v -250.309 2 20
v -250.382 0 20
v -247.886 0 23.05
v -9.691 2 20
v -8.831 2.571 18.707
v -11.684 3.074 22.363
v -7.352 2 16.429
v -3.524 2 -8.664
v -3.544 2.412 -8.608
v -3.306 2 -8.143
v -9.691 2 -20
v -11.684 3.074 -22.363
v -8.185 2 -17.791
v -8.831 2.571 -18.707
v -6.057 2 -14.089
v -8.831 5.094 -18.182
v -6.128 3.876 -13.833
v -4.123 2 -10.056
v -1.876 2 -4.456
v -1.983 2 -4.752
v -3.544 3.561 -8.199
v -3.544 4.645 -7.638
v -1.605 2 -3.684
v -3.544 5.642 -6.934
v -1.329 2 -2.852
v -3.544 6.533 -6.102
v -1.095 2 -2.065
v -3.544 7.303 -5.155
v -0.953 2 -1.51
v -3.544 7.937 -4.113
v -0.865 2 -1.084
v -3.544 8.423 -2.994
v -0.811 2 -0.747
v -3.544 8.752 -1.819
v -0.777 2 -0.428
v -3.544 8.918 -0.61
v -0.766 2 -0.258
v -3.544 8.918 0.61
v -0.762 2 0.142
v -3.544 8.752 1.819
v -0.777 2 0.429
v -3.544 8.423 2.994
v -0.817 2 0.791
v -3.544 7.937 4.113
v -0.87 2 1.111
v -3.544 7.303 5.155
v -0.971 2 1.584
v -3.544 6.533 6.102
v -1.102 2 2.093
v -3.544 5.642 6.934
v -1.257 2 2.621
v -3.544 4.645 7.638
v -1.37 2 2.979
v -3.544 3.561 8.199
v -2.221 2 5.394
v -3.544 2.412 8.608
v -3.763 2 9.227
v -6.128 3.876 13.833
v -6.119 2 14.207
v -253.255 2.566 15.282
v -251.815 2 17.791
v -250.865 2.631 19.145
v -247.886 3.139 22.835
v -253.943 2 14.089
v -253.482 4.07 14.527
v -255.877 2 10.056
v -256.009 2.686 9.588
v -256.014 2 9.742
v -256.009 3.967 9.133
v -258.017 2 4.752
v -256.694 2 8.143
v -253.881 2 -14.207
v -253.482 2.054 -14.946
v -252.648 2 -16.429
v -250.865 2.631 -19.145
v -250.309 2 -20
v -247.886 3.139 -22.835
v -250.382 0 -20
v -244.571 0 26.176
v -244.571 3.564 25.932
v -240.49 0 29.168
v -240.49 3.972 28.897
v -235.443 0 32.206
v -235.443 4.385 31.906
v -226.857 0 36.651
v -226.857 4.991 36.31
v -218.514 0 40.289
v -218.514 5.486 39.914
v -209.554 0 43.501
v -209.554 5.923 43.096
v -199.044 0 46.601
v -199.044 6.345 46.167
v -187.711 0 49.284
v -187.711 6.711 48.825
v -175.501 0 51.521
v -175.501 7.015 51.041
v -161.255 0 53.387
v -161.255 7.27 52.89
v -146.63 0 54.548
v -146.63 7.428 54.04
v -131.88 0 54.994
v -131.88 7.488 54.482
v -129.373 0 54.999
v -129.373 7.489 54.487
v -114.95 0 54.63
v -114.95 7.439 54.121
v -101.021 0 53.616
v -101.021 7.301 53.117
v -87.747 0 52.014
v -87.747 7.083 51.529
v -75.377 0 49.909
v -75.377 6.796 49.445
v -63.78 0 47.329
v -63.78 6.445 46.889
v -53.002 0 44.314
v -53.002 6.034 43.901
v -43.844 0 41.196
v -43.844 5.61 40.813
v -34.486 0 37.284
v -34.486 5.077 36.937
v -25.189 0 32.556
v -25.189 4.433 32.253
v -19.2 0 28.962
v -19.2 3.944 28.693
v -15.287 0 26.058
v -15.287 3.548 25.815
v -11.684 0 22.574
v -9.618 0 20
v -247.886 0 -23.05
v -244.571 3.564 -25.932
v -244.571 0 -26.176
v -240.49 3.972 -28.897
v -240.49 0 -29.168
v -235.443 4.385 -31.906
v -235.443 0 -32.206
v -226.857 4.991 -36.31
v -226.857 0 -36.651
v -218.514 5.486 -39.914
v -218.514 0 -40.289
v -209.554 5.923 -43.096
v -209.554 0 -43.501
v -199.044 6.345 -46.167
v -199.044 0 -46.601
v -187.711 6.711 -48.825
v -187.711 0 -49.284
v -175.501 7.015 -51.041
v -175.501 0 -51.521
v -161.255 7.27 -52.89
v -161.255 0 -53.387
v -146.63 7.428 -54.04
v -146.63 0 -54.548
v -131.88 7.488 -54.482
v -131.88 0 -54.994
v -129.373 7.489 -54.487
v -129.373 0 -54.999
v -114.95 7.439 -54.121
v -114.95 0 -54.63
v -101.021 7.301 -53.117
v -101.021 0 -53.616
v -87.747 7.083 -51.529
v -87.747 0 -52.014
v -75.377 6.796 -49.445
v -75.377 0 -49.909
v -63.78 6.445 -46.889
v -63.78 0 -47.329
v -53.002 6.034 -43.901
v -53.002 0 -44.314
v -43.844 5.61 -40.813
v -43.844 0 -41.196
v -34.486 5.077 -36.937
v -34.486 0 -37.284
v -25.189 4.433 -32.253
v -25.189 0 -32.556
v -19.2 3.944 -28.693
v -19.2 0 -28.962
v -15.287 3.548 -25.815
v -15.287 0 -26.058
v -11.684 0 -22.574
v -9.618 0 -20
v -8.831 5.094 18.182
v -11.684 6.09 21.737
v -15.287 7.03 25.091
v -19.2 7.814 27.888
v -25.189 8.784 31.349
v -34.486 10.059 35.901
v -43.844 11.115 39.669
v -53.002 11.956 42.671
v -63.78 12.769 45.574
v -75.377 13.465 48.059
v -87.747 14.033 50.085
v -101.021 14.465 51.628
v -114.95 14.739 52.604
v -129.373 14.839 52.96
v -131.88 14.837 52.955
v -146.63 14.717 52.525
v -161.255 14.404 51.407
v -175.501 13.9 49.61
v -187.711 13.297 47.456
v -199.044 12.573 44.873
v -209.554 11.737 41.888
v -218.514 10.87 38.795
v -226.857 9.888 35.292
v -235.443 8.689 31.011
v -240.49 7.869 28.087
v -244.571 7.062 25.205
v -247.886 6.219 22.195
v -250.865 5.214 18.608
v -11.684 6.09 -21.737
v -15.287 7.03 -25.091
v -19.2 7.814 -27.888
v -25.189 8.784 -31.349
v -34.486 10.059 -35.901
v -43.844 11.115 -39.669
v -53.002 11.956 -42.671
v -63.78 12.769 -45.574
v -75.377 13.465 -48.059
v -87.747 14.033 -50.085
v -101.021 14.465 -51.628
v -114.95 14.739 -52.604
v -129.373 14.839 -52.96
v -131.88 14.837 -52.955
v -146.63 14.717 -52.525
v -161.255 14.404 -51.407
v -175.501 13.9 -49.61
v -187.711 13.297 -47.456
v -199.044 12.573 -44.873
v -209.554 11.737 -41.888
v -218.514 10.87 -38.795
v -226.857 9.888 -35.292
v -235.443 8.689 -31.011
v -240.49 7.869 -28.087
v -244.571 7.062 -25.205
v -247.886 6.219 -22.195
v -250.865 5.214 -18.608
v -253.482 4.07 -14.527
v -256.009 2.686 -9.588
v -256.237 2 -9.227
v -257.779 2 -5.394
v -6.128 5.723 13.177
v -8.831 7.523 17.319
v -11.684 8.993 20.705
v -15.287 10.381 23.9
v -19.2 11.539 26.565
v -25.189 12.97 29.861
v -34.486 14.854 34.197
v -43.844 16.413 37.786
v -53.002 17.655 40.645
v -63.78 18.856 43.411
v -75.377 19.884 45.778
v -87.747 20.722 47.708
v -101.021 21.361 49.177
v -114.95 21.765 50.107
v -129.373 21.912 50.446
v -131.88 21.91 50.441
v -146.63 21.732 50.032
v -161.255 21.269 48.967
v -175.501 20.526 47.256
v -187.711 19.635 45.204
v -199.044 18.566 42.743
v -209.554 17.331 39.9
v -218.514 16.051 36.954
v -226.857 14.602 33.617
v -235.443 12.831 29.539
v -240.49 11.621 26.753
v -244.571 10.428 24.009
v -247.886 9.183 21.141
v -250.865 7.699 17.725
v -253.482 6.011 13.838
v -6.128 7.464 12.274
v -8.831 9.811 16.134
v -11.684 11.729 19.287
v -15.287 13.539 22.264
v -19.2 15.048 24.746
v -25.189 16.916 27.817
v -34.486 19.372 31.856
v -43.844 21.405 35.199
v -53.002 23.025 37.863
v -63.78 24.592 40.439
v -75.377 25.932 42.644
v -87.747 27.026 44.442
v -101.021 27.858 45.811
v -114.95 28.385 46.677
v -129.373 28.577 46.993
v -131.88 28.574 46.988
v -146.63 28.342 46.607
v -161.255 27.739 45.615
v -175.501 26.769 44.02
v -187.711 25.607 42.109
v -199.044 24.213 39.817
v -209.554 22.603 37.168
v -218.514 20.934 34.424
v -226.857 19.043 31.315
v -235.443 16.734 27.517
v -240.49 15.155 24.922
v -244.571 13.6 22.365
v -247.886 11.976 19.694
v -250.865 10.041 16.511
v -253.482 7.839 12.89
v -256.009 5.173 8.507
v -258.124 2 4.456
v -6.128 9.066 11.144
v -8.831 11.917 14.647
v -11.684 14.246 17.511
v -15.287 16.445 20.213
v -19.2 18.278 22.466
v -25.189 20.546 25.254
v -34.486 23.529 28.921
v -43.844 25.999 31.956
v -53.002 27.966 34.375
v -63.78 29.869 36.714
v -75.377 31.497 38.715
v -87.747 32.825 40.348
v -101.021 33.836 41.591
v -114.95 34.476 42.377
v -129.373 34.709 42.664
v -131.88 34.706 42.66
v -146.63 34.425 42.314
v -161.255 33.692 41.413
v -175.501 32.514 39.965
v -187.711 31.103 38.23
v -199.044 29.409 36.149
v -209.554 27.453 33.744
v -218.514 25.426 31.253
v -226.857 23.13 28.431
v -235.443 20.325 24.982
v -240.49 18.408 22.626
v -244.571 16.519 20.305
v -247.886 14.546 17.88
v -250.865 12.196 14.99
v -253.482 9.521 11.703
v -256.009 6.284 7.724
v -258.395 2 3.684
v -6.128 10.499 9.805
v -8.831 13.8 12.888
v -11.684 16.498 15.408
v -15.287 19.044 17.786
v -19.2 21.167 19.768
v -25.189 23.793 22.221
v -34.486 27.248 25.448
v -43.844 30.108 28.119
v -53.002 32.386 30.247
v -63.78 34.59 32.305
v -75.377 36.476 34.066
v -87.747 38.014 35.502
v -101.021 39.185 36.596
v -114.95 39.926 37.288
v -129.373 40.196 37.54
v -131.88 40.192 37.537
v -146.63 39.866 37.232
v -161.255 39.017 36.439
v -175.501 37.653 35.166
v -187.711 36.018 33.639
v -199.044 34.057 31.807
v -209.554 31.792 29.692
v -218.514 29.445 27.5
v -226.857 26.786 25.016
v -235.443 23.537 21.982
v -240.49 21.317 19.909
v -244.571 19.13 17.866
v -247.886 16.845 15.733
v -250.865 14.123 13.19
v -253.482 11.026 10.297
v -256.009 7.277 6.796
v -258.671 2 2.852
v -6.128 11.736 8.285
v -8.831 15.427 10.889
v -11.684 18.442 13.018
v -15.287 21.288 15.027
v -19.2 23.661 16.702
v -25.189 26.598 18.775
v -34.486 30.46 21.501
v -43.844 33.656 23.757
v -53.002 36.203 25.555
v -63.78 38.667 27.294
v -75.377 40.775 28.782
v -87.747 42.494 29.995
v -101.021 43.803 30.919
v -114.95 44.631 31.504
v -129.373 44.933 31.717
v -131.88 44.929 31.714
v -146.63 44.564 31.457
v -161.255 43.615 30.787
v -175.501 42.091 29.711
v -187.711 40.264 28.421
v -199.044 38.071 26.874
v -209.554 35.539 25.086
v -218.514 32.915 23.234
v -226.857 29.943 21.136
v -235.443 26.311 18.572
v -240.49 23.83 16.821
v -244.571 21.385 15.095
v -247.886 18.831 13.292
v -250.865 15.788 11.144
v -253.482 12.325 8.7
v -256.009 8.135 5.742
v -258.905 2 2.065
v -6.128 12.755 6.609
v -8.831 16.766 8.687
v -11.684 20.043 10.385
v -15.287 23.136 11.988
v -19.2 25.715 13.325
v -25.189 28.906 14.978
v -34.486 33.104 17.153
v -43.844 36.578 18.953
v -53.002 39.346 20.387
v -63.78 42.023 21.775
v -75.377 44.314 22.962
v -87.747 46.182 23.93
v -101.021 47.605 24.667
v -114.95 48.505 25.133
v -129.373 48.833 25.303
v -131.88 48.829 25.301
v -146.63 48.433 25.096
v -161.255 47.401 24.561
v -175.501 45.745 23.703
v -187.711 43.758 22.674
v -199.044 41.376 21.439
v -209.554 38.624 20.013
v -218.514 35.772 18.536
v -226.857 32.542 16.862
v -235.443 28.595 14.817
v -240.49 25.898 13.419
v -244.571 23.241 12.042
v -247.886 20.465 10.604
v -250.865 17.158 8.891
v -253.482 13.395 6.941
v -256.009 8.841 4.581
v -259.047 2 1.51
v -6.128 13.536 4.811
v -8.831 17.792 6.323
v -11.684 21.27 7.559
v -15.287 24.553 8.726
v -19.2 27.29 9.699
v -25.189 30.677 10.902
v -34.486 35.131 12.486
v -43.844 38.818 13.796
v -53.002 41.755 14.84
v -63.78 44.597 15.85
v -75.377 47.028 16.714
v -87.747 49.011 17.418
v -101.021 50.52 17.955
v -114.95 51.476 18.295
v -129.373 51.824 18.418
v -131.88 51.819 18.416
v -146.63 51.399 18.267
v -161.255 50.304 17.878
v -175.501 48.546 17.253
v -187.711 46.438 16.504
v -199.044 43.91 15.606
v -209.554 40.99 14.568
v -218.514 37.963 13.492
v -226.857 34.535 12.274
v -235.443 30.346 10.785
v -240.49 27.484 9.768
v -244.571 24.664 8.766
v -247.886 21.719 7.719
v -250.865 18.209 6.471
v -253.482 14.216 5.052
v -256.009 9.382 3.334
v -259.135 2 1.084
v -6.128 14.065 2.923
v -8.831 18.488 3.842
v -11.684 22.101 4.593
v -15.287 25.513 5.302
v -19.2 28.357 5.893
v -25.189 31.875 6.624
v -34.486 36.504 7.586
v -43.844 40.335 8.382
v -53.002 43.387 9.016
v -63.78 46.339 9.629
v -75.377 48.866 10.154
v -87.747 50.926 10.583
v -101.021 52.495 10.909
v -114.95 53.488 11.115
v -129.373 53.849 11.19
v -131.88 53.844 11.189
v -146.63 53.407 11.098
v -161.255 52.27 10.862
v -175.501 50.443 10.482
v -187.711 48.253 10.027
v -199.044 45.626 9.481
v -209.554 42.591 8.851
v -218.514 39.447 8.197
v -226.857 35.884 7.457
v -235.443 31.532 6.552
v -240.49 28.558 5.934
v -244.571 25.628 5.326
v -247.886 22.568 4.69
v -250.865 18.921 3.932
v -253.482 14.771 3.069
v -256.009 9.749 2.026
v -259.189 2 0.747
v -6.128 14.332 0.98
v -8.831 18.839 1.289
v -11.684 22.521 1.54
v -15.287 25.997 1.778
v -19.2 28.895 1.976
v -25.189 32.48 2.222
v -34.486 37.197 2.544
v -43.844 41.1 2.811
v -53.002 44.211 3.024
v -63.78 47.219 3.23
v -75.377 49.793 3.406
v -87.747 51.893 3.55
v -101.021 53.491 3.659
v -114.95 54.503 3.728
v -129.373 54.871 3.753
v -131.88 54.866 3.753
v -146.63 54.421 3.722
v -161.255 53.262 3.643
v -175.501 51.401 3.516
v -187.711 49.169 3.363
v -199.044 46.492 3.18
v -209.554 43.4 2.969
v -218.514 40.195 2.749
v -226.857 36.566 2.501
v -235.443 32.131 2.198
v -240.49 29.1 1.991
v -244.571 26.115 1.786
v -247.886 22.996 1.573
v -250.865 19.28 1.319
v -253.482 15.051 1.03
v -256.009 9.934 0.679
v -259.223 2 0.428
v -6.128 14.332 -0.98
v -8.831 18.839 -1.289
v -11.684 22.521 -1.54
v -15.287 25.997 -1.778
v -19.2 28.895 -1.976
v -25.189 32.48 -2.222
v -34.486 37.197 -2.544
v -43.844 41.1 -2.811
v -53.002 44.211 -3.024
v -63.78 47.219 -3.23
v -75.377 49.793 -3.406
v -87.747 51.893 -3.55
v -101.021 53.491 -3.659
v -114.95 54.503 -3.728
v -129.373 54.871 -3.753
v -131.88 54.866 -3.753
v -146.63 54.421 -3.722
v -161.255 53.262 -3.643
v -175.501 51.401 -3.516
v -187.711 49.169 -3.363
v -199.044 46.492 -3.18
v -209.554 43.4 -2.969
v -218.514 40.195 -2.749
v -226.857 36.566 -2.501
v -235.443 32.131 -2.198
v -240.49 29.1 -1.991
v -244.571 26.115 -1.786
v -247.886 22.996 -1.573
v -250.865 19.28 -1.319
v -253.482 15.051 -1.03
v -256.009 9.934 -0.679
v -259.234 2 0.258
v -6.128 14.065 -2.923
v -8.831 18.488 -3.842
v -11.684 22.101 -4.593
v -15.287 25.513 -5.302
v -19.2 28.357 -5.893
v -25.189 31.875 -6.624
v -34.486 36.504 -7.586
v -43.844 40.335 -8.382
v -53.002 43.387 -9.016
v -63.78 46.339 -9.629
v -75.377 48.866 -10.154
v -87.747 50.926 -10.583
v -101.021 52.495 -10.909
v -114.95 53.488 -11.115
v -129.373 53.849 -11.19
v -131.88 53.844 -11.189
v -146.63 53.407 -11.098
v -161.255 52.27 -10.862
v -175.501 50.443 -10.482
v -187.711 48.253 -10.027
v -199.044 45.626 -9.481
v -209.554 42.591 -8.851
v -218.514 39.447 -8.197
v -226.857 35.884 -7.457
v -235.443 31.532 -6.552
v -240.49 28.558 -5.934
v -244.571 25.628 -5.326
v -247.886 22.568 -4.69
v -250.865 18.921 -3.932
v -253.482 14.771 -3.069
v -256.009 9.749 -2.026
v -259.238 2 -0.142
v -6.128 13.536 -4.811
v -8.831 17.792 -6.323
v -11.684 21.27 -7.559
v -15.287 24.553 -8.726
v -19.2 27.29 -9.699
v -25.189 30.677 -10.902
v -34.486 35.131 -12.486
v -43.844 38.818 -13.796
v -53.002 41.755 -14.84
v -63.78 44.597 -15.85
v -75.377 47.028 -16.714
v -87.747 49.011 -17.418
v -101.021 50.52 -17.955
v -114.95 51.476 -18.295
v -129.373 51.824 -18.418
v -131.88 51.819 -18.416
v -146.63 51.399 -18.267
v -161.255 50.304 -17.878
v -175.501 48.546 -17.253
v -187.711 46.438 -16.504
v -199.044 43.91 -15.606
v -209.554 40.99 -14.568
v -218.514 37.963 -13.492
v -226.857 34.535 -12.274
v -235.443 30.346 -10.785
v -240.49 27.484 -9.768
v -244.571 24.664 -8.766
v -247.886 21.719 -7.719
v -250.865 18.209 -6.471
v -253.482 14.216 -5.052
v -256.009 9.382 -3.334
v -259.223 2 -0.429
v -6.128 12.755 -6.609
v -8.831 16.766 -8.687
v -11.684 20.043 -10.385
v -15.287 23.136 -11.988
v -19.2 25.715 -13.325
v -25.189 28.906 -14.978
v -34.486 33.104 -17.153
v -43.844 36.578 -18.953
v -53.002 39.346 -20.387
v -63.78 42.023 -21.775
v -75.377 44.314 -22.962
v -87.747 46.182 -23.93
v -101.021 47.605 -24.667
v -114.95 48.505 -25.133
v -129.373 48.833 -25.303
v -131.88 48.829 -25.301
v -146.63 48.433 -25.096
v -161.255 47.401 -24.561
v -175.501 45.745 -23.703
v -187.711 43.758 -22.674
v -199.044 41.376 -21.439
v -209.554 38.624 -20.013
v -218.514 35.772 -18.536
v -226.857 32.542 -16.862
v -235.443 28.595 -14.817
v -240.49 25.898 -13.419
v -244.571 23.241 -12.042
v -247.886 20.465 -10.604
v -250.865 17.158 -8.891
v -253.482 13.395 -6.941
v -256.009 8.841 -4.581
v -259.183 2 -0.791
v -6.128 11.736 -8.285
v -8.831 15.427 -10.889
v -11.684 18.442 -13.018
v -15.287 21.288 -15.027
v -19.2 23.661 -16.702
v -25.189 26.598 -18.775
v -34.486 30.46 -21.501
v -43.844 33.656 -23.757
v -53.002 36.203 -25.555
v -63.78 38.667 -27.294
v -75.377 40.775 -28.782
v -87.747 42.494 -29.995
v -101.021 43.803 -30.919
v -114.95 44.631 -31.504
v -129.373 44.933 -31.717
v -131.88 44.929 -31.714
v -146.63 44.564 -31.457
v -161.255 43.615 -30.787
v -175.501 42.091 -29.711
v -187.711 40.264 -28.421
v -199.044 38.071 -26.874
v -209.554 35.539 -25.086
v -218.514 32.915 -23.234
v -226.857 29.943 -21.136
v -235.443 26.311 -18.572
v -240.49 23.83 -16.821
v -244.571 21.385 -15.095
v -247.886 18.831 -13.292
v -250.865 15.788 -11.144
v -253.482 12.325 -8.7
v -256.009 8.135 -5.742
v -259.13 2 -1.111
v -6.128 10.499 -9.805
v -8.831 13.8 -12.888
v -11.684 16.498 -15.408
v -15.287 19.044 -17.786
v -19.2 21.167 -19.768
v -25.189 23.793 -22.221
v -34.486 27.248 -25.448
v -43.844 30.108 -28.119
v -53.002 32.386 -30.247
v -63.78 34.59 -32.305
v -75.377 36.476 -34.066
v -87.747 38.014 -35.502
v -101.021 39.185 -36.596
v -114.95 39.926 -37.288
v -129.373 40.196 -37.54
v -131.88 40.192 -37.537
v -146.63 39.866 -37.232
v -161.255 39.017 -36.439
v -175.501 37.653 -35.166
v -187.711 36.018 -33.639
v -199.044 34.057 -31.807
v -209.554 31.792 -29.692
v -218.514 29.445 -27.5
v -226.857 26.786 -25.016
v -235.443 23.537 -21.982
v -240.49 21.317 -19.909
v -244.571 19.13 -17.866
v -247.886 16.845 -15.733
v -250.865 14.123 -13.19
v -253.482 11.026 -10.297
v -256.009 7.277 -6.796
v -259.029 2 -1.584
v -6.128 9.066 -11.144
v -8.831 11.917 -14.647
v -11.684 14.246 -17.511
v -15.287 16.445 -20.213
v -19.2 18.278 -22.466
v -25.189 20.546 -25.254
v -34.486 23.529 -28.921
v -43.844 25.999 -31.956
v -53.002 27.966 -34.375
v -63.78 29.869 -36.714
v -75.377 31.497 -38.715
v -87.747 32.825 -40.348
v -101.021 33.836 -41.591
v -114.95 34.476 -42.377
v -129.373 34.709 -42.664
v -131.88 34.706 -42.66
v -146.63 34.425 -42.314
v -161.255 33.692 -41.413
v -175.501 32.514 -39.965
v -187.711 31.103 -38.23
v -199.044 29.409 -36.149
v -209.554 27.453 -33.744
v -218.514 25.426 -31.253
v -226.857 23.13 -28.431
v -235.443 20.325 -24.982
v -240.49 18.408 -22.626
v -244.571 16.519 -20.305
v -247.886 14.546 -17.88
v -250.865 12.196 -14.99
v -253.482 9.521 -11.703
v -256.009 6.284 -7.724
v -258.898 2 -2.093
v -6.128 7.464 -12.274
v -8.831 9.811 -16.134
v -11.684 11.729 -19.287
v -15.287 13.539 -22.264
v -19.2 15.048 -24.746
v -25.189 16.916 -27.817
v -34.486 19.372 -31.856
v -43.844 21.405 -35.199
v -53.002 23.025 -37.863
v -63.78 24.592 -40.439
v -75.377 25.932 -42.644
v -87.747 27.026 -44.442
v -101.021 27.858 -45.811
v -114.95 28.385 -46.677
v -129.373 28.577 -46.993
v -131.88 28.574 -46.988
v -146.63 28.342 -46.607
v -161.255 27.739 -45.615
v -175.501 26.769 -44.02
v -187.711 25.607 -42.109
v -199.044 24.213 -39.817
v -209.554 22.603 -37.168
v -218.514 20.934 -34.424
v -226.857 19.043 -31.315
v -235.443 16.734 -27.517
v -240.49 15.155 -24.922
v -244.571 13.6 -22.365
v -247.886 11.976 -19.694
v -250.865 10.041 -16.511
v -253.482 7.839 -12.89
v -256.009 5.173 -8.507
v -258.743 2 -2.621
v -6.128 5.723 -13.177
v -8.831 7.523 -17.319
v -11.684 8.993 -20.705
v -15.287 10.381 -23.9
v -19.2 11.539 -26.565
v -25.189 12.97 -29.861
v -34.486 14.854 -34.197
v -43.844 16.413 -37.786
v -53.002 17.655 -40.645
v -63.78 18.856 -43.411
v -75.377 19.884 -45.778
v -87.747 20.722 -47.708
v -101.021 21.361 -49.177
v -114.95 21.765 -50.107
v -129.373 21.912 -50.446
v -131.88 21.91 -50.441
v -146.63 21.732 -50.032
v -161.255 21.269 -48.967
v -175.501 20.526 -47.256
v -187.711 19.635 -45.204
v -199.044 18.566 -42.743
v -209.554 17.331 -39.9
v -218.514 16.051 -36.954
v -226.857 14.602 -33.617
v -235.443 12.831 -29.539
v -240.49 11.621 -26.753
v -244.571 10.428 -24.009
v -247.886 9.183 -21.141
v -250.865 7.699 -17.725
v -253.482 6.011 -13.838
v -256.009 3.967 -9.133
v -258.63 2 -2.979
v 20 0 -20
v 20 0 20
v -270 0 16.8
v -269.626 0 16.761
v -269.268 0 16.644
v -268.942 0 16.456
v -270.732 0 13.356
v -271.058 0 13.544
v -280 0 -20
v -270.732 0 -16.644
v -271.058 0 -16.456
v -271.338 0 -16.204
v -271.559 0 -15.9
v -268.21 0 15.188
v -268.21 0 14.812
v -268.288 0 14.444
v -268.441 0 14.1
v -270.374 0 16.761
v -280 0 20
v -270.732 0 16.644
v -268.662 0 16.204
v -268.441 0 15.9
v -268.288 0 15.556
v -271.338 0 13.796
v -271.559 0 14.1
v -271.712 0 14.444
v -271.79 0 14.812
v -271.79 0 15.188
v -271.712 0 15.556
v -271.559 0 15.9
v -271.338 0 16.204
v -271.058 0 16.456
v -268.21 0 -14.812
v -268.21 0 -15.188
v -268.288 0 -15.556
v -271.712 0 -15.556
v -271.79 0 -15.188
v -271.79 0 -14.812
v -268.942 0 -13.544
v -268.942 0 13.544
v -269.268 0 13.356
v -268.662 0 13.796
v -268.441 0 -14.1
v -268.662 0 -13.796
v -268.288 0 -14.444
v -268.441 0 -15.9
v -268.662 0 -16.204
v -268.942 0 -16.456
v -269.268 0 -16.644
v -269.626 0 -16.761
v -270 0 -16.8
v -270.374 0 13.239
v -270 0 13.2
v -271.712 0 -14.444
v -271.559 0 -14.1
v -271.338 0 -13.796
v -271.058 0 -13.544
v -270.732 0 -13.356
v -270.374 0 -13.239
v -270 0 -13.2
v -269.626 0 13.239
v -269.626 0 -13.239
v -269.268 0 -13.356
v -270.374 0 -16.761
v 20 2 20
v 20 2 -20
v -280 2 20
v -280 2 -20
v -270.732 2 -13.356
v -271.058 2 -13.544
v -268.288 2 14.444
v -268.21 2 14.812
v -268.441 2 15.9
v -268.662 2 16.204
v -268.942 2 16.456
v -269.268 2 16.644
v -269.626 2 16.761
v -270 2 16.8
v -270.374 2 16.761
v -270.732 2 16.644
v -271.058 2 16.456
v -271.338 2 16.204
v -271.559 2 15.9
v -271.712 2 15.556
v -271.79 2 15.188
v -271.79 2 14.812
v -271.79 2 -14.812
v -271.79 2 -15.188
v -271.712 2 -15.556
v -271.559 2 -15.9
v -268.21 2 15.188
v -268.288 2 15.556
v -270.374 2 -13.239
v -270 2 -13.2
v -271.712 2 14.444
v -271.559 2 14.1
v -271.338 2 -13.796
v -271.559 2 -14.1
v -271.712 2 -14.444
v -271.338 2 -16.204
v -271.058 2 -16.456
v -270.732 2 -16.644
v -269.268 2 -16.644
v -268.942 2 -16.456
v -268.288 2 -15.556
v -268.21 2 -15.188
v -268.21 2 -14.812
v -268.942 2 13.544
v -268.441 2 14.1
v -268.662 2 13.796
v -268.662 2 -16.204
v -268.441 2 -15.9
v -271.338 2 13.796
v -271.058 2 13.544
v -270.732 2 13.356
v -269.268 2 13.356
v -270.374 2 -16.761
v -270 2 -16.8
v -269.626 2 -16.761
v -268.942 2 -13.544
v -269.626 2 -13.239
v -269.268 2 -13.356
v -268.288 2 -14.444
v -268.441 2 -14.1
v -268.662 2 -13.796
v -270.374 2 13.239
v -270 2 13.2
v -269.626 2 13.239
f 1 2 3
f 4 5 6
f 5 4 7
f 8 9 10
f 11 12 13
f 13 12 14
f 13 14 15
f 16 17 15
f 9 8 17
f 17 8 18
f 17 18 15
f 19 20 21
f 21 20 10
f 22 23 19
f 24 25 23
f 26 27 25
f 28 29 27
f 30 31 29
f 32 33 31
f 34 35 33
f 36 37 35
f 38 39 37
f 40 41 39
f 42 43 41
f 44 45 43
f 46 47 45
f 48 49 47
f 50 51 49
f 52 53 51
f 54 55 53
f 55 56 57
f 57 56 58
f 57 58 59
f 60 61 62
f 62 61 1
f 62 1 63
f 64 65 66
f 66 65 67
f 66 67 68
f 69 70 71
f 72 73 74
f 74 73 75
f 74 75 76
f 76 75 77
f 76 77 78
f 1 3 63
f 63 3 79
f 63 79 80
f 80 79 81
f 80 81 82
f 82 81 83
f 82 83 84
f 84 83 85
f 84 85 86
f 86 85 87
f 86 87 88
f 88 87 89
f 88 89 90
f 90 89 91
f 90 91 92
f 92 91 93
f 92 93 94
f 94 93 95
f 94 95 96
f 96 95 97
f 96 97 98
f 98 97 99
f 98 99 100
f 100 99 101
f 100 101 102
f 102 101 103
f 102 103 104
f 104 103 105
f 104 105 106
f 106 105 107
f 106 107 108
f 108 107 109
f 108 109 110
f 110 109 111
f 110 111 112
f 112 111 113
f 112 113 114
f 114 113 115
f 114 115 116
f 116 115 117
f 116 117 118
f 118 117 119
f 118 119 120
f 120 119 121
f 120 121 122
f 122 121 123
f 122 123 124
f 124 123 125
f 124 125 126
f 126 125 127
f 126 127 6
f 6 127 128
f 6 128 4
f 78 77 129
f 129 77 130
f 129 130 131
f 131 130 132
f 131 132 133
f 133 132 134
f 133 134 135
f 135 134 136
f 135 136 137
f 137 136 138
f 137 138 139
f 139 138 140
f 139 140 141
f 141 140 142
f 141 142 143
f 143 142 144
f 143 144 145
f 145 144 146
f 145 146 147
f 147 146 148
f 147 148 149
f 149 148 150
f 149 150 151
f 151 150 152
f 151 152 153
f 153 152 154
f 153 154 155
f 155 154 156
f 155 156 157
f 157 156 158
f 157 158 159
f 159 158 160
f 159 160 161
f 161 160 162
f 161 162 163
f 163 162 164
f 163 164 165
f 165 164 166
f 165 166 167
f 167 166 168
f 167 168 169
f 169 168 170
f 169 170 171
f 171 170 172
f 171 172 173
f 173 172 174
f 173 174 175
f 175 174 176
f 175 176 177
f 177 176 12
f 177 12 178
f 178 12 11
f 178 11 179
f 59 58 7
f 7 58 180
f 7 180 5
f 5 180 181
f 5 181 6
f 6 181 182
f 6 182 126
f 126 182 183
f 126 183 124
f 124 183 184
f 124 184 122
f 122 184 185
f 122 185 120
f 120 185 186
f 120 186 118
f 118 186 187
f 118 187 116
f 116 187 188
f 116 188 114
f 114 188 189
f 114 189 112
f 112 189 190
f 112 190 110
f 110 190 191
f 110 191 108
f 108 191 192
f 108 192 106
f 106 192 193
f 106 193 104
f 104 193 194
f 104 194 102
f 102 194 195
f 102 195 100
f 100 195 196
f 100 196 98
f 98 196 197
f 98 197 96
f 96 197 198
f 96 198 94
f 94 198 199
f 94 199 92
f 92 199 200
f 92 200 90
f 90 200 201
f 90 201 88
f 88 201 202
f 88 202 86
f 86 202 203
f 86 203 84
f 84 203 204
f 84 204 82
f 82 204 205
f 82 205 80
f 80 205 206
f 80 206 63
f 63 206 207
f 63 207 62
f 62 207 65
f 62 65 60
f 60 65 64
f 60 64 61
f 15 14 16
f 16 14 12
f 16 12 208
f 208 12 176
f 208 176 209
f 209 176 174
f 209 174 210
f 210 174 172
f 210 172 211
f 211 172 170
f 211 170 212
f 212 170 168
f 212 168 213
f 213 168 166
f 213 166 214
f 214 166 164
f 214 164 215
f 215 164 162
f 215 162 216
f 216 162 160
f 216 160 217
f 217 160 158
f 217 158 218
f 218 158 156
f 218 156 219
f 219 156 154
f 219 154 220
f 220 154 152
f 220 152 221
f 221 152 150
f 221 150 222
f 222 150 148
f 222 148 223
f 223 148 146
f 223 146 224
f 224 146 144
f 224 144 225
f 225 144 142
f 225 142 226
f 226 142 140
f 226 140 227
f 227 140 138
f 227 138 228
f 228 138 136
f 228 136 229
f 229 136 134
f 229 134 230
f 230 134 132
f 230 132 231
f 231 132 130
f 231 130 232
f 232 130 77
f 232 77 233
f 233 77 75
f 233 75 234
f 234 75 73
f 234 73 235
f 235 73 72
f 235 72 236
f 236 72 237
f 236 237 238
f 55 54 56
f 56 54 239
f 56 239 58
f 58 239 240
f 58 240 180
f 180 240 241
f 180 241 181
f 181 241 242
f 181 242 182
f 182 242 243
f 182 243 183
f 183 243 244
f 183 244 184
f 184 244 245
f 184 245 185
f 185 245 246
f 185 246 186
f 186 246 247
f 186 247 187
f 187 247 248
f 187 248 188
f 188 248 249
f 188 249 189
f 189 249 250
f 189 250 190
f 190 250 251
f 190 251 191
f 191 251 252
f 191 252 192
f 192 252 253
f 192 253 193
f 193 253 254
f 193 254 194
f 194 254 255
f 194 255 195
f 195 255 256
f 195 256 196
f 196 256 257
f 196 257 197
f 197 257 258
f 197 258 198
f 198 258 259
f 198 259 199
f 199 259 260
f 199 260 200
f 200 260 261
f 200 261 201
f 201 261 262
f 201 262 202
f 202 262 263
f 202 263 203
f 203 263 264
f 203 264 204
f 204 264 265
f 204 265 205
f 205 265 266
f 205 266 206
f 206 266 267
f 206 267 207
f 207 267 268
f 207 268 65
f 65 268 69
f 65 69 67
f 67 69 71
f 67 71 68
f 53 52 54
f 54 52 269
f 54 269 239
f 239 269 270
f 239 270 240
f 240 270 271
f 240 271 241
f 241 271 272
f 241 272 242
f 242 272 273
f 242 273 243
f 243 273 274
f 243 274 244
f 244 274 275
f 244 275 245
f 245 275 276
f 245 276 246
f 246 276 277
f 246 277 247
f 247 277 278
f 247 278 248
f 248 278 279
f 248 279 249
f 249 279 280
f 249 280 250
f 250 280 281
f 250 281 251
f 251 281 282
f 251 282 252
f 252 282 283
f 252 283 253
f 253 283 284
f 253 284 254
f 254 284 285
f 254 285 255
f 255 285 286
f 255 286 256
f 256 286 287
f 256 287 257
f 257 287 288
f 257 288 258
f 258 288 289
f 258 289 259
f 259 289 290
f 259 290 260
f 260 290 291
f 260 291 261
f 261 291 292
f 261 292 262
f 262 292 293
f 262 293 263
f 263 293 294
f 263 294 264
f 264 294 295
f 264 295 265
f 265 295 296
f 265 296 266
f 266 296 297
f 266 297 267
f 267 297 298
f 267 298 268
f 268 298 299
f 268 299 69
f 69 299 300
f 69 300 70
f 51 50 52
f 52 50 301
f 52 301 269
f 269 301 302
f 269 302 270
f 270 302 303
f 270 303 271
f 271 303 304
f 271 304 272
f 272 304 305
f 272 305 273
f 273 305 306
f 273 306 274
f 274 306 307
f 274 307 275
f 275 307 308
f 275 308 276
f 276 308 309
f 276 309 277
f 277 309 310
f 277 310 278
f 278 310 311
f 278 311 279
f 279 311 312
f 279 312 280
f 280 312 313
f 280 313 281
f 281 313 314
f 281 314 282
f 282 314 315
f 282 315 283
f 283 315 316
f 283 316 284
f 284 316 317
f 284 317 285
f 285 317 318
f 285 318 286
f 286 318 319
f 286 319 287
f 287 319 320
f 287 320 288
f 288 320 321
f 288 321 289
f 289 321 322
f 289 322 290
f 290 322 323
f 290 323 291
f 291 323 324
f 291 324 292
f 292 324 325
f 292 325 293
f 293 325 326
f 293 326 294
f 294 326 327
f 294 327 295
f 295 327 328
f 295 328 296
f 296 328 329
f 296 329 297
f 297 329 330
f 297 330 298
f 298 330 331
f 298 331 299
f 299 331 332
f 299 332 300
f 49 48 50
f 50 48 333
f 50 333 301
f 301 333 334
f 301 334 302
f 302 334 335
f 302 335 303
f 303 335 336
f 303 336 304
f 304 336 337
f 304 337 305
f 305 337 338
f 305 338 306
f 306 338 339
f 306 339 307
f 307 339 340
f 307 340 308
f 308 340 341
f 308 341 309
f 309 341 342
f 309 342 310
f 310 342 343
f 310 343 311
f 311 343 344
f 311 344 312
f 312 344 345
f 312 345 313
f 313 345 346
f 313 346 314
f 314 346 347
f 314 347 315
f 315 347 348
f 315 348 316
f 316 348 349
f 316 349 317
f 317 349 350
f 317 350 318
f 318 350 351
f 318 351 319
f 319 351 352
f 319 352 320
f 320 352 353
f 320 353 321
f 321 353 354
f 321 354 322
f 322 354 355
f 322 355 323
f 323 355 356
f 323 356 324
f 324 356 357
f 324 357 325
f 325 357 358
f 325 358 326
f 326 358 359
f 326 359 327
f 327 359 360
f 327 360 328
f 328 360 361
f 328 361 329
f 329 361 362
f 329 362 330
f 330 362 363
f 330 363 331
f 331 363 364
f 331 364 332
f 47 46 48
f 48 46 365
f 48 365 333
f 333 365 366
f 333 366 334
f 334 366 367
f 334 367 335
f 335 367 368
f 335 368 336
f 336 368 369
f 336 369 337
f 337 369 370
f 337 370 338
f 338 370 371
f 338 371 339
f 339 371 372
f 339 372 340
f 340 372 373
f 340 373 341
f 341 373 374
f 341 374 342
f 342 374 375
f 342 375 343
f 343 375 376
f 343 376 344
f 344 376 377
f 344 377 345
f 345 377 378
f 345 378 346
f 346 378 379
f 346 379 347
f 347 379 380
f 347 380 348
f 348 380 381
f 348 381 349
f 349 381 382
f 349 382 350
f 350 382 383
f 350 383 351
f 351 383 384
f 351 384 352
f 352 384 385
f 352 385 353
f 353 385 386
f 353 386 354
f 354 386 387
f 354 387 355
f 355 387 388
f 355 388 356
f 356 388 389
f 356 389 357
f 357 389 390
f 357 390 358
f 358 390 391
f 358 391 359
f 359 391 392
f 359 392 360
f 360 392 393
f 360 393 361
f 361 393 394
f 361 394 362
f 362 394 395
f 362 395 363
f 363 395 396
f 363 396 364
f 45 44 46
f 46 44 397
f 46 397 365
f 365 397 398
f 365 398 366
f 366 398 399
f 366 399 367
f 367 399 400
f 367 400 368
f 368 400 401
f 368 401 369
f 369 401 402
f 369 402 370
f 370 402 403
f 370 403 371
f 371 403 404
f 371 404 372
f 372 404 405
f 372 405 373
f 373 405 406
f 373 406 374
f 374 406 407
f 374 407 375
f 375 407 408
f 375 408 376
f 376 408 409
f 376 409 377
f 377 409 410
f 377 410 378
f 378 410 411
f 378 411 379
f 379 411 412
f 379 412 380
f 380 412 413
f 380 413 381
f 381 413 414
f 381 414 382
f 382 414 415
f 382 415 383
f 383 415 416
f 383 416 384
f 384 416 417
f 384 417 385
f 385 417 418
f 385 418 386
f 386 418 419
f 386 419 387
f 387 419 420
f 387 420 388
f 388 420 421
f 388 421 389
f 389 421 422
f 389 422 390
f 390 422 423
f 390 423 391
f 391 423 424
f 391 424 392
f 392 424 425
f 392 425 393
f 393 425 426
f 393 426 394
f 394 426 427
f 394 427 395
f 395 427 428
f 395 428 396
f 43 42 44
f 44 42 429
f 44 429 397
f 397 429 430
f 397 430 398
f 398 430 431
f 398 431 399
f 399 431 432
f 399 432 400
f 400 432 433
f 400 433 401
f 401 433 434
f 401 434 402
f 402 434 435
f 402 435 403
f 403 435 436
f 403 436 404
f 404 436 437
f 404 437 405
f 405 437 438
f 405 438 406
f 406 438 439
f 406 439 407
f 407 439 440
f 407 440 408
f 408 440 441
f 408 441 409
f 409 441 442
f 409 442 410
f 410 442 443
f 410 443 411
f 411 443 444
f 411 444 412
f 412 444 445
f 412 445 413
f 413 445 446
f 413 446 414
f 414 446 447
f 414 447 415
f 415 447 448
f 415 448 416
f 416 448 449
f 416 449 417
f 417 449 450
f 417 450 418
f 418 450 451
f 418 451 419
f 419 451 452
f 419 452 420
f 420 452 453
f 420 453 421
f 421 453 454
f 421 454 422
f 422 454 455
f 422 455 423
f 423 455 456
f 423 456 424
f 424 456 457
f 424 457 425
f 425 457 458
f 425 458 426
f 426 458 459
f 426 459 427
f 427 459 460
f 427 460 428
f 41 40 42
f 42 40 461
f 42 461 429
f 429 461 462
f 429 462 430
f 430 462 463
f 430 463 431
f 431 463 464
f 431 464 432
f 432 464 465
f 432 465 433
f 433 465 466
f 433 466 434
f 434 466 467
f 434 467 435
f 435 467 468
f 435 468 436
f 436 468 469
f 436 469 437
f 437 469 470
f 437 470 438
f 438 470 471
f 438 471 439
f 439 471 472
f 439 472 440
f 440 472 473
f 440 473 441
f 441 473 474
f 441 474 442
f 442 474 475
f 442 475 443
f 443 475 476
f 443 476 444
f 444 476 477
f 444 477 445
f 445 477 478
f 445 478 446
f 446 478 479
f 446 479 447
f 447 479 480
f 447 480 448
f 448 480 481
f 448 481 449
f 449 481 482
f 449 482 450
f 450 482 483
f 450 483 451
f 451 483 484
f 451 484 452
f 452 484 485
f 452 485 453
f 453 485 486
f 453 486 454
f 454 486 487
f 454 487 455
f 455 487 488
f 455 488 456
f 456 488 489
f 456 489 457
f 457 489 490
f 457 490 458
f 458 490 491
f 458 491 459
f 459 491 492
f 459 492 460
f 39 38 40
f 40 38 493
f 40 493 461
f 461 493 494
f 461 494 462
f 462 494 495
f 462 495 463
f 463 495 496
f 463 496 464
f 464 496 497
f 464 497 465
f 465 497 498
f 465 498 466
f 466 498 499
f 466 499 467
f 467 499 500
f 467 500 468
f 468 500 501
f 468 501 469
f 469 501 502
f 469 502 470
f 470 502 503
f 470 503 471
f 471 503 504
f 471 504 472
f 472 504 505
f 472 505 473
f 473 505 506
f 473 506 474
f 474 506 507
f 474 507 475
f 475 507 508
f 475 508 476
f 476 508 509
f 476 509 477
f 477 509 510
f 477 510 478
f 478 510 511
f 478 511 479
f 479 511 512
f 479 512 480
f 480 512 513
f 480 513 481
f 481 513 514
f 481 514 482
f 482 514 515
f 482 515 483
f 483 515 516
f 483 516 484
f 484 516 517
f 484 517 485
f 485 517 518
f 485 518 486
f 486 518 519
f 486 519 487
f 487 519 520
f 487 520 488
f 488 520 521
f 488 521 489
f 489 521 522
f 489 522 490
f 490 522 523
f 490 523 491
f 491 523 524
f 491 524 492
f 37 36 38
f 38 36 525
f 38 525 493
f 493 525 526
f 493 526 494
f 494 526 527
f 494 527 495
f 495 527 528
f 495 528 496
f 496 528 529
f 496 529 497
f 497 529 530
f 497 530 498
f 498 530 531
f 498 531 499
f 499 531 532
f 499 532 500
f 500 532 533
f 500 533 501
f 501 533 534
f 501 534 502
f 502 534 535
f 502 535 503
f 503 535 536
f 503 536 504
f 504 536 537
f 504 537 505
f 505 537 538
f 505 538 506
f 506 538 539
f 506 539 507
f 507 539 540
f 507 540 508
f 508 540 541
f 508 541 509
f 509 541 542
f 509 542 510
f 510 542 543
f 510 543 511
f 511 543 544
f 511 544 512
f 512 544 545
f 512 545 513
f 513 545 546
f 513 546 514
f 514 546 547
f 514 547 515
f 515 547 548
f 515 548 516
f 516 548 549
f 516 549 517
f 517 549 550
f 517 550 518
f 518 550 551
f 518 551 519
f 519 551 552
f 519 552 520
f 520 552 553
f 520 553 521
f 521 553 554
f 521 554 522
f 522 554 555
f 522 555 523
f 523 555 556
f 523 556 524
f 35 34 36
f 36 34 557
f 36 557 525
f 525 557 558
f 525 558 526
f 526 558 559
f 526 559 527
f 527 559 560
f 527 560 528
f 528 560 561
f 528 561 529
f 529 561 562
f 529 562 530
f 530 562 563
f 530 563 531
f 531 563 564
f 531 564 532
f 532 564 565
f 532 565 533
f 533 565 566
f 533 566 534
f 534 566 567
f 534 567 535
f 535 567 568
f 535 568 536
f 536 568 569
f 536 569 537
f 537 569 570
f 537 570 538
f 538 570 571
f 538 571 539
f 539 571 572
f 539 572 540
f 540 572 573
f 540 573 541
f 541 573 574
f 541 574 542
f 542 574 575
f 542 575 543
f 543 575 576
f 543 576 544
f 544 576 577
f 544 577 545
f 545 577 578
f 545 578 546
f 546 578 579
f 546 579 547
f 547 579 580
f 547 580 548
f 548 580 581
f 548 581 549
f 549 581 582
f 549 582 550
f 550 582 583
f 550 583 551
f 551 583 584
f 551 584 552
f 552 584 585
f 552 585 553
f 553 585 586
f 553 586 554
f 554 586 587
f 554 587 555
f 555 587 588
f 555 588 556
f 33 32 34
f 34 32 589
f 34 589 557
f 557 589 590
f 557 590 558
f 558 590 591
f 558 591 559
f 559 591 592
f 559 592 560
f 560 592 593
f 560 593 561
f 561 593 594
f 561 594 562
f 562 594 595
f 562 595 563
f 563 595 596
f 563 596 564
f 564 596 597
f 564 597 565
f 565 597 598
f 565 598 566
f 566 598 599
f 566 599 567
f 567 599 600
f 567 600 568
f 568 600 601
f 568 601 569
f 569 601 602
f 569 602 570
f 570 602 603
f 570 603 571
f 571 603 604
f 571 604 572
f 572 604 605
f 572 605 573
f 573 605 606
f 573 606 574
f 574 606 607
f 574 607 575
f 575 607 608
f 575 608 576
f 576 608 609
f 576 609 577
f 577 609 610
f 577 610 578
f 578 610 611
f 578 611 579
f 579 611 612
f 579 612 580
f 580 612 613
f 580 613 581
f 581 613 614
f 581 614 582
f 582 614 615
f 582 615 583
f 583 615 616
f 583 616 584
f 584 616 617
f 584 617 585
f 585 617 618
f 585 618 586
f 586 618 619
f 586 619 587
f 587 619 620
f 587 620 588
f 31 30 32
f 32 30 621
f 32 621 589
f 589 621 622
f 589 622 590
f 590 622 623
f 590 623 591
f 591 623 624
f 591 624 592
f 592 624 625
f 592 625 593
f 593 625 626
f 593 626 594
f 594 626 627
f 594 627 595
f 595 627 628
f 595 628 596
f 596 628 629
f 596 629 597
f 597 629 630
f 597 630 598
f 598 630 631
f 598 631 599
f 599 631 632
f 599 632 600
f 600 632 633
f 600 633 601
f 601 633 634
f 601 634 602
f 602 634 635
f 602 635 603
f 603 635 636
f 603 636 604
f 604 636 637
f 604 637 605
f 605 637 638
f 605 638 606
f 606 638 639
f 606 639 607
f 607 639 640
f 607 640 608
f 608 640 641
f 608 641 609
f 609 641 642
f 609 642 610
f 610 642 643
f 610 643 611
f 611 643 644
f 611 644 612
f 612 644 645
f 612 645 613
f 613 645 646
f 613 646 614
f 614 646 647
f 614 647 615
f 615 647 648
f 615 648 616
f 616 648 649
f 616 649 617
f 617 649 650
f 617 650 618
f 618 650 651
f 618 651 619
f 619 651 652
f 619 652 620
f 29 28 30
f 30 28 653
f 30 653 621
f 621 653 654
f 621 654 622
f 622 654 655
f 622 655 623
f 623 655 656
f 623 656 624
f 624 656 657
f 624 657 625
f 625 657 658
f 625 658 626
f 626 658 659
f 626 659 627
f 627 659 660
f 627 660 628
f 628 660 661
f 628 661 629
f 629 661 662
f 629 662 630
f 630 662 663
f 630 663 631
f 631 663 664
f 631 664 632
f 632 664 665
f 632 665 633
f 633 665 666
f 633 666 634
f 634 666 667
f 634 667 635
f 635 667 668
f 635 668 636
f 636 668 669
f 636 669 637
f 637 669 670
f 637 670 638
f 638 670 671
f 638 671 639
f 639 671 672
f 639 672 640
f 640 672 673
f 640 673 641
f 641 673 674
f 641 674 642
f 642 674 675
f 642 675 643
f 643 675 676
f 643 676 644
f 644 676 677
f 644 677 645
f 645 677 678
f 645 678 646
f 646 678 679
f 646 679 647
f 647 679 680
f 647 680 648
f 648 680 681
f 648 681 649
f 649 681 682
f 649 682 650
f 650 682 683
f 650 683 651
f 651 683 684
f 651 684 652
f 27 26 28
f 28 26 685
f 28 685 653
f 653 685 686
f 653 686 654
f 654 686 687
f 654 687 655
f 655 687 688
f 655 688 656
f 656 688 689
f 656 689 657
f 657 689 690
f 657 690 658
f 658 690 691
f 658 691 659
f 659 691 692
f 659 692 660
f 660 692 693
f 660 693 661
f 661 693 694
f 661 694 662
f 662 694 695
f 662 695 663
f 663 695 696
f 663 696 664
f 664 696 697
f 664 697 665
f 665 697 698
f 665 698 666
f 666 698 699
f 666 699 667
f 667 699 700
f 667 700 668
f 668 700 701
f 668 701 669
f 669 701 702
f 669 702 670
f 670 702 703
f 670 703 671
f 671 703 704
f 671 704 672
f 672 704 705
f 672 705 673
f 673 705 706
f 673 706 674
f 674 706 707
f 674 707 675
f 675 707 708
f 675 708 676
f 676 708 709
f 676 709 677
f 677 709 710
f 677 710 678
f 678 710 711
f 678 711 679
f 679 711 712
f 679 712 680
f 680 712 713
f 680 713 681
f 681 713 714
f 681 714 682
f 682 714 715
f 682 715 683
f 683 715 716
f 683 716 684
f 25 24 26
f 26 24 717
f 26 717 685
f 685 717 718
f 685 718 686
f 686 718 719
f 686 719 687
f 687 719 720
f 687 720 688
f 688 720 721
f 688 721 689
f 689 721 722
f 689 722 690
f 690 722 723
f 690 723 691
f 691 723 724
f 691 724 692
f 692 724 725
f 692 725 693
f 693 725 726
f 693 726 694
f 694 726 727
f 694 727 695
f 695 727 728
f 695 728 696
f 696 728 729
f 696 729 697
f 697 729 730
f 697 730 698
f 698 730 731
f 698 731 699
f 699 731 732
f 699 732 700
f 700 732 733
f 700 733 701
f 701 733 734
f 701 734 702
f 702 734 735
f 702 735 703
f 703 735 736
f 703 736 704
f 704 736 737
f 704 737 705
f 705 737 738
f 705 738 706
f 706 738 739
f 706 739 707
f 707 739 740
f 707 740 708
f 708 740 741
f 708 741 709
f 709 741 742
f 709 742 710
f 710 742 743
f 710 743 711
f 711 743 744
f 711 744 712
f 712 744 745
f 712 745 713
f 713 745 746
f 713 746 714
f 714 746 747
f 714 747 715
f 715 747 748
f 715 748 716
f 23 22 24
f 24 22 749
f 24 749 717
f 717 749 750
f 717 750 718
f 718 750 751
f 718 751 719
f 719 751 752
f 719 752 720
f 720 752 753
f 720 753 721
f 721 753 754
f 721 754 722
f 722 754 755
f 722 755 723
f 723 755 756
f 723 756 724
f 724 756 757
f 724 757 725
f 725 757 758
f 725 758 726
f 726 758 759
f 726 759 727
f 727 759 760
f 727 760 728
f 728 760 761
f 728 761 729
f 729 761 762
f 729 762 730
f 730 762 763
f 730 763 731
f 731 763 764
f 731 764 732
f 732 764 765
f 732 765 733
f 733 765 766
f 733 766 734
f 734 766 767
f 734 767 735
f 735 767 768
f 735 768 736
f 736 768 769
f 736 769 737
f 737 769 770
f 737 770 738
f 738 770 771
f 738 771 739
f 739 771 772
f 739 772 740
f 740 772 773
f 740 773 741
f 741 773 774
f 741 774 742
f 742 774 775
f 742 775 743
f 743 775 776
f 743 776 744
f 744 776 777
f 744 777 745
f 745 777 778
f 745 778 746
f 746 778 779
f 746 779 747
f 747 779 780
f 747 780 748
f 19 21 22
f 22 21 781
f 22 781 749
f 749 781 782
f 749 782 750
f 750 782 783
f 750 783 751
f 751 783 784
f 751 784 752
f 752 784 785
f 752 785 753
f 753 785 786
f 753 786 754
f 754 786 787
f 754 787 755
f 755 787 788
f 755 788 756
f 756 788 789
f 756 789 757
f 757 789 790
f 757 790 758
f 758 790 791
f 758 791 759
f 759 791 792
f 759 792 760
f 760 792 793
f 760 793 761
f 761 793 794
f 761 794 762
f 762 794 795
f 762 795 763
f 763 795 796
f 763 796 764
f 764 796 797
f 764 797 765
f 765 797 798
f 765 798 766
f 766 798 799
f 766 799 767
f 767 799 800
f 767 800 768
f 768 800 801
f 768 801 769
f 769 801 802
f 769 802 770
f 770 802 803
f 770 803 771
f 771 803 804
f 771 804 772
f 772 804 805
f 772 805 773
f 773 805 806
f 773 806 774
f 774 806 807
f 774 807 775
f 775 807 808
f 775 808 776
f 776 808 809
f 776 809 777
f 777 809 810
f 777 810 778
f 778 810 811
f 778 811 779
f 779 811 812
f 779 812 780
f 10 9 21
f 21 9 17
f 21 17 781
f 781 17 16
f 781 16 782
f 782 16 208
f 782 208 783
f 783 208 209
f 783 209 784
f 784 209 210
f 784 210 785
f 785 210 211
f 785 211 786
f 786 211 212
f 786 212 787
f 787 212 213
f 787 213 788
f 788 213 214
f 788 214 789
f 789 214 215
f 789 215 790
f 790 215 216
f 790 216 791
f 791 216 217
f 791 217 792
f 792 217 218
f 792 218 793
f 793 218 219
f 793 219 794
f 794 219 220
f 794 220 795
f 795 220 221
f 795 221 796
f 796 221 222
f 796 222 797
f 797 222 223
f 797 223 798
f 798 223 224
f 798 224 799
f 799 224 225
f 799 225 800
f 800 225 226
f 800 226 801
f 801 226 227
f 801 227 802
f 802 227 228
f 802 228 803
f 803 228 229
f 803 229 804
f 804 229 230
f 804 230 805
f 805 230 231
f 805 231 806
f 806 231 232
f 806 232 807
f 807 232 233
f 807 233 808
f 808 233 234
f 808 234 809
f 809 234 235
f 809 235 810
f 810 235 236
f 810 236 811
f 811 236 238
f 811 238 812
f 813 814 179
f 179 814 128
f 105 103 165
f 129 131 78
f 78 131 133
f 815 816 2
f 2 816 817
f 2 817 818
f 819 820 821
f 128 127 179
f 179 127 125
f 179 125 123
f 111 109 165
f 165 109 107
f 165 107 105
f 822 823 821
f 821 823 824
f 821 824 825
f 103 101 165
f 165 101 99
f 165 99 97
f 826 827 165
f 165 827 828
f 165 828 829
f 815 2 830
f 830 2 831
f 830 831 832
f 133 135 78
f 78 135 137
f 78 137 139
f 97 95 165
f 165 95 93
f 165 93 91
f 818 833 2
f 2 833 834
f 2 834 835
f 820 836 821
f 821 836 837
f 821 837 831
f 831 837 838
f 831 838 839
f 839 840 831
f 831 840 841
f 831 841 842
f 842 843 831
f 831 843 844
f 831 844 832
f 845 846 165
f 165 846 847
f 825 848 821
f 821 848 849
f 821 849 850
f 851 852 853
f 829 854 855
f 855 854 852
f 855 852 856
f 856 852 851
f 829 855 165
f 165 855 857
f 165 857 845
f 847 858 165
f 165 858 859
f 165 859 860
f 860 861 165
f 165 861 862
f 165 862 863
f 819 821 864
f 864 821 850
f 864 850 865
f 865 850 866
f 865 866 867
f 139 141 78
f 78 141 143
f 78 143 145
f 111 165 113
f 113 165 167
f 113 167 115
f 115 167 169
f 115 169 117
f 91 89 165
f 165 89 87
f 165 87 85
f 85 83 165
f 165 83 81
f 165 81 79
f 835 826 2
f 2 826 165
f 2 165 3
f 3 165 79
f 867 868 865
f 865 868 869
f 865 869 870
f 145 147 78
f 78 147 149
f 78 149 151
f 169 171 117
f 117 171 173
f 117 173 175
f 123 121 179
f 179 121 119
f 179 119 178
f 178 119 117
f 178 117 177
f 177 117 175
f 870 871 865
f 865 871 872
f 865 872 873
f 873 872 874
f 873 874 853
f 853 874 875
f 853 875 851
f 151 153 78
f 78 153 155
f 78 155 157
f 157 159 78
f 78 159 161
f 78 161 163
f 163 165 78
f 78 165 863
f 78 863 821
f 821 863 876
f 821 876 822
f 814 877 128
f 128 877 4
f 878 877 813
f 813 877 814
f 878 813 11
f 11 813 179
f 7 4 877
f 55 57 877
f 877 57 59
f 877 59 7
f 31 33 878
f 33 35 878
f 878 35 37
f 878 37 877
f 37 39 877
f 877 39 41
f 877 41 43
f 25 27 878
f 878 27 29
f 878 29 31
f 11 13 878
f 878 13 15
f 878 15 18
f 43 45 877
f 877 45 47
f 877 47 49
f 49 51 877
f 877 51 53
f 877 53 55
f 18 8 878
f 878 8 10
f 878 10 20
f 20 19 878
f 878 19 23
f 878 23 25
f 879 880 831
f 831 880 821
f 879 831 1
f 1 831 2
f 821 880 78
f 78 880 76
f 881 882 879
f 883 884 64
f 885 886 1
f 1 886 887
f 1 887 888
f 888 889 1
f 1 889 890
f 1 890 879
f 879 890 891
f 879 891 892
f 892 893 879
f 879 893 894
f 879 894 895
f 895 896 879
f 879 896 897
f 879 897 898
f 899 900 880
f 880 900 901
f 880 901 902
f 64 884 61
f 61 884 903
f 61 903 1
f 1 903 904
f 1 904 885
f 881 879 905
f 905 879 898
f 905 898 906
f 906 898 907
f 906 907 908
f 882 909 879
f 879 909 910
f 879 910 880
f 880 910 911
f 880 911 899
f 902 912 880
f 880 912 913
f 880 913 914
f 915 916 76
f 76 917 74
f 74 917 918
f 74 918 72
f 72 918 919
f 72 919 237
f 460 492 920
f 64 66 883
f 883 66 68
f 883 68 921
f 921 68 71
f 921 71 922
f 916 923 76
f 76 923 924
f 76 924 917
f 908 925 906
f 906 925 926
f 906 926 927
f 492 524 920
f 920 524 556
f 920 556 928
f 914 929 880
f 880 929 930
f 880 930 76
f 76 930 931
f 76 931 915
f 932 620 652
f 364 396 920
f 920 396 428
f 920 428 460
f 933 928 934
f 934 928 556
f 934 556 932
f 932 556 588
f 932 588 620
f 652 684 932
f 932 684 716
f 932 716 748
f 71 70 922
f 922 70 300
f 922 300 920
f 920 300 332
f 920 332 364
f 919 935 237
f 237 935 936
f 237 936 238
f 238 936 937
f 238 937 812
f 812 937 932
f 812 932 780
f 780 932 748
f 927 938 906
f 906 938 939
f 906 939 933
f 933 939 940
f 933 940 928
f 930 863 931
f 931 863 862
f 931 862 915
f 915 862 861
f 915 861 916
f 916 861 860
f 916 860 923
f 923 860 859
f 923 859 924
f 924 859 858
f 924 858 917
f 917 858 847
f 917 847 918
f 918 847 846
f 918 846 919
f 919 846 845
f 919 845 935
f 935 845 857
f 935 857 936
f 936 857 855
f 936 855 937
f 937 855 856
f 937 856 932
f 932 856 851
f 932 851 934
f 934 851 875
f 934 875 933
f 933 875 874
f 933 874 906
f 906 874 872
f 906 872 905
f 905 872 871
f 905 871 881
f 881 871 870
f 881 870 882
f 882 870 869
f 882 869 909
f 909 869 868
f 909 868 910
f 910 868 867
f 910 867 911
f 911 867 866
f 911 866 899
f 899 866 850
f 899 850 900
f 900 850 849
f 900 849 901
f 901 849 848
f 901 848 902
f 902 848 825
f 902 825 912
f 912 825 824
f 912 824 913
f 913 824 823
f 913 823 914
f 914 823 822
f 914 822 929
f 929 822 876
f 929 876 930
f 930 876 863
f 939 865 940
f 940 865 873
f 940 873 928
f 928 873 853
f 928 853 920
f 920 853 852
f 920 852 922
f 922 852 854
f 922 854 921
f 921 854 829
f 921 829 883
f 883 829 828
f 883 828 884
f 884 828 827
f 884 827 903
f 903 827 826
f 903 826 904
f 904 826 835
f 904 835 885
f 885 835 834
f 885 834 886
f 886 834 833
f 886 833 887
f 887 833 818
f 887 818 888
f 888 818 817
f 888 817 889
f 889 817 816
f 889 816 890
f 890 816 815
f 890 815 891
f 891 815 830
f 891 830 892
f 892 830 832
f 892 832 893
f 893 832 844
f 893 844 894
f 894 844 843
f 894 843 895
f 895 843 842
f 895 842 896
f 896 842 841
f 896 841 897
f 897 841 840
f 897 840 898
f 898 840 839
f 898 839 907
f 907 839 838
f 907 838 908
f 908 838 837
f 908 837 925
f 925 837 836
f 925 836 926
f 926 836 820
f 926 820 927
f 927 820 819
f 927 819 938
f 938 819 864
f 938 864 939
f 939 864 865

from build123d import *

# Parameters (mm, degrees)
SKETCH2_W           = 360
SKETCH2_H           = 160
CUT_EXTRUDE1_DEPTH  = 80
SKETCH3_W           = 30
SKETCH3_H           = 40
BOSS_EXTRUDE1_DEPTH = 2
SKETCH4_R           = 1.8
CUT_EXTRUDE2_DEPTH  = 3


with BuildPart() as part:
    # Sketch1 → Revolve1 (revolve)
    with BuildSketch(Plane.XY):
        with BuildLine():
            Line((-260, 0), (0, 0))
            add(Edge.make_bspline(
                [(0, 0), (-3.347287608, 8.830491747), (-8.637057756, 22.785453825), (-25.560999876, 33.02157361), (-38.692183286, 39.434199177), (-51.852349815, 44.123794884), (-64.89948422, 47.74936681), (-77.936573384, 50.514956153), (-90.95830586, 52.566616186), (-103.974926365, 53.983885889), (-116.988117972, 54.816743473), (-130, 55.091544132), (-143.011882028, 54.816743473), (-156.025073635, 53.983885889), (-169.04169414, 52.566616186), (-182.063426616, 50.514956153), (-195.10051578, 47.74936681), (-208.147650185, 44.123794884), (-221.307816714, 39.434199177), (-234.439000124, 33.02157361), (-251.362942244, 22.785453825), (-256.652712392, 8.830491747), (-260, 0)],
                knots=[0, 0, 0, 0, 0.090648646, 0.143253451, 0.191238799, 0.237211898, 0.282076785, 0.326262316, 0.37001128, 0.413479751, 0.456779596, 0.5, 0.543220404, 0.586520249, 0.62998872, 0.673737684, 0.717923215, 0.762788102, 0.808761201, 0.856746549, 0.909351354, 1, 1, 1, 1], degree=3))
        make_face()
    revolve(axis=Axis((10, 0, 0), (-1, 0, 0)))

    # Sketch2 → Cut-Extrude1 (cut)
    with BuildSketch(Plane(origin=(0, 0, 0), x_dir=(1, 0, 0), z_dir=(0, 1, 0))):
        with Locations((-130, 0)):
            Rectangle(SKETCH2_W, SKETCH2_H)
    extrude(amount=-CUT_EXTRUDE1_DEPTH, mode=Mode.SUBTRACT)

    # Sketch3 → Boss-Extrude1 (add)
    with BuildSketch(Plane(origin=(0, 0, 0), x_dir=(1, 0, 0), z_dir=(0, 1, 0))):
        with Locations((-265, 0)):
            Rectangle(SKETCH3_W, SKETCH3_H)
        with Locations((5, 0)):
            Rectangle(SKETCH3_W, SKETCH3_H)
    extrude(amount=BOSS_EXTRUDE1_DEPTH)

    # Sketch4 → Cut-Extrude2 (cut)
    with BuildSketch(Plane(origin=(0, 0, 0), x_dir=(1, 0, 0), z_dir=(0, 1, 0))):
        with Locations(Location((-270, -15, 0), (0, 0, 90))):
            Circle(SKETCH4_R)
        with Locations(Location((-270, 15, 0), (0, 0, 90))):
            Circle(SKETCH4_R)
    extrude(amount=CUT_EXTRUDE2_DEPTH, mode=Mode.SUBTRACT)


solid = part.part
